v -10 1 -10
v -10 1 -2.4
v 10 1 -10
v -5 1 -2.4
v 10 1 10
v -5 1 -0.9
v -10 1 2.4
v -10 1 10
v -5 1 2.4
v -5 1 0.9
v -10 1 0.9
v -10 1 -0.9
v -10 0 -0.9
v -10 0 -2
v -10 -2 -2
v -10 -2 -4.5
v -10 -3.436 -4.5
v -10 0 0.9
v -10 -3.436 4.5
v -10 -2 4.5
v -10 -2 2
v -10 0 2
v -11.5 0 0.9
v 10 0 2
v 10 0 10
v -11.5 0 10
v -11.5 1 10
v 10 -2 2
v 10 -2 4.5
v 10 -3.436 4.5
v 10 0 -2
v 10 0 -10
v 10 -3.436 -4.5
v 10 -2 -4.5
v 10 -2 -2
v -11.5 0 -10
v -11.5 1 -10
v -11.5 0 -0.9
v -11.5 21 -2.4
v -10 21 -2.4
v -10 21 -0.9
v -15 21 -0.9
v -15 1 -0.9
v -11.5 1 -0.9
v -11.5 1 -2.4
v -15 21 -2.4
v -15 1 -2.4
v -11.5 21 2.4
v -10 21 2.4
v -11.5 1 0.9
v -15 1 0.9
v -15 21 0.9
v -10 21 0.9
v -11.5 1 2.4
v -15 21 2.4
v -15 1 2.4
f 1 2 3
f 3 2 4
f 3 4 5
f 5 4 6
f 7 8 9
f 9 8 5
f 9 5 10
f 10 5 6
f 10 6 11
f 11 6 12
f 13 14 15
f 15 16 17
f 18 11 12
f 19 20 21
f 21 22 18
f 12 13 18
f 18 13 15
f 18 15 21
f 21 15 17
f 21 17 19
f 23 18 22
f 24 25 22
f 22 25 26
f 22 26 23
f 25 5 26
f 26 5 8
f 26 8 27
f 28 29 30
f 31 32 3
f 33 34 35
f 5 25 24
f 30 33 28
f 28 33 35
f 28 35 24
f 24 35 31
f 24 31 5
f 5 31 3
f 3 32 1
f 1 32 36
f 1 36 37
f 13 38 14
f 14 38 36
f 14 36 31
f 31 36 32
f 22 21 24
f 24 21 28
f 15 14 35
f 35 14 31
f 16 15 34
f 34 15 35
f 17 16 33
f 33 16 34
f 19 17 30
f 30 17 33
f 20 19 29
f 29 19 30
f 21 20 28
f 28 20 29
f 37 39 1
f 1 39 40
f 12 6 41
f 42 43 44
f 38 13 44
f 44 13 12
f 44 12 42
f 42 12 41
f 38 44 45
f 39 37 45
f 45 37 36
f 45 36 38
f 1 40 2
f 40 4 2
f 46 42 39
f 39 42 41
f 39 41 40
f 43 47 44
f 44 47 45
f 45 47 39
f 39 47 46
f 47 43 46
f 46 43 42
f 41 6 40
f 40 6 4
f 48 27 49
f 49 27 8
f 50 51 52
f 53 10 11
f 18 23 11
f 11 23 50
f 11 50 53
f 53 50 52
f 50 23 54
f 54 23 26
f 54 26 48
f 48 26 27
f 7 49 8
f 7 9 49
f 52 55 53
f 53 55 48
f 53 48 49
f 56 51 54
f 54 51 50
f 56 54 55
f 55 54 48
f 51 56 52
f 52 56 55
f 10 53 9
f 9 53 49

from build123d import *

# Parameters (mm, degrees)
SKETCH1_W                = 20
SKETCH1_H                = 20
BOSS_EXTRUDE1_DEPTH      = 1
BOSS_EXTRUDE5_DEPTH      = 20
BOSS_EXTRUDE6_DEPTH      = 5
BOSS_EXTRUDE6_DEPTH_BACK = 5
SKETCH5_W                = 1.5
SKETCH5_H                = 20
CUT_EXTRUDE1_DEPTH       = 5
BOSS_EXTRUDE7_DEPTH      = 1.5


with BuildPart() as part:
    # Sketch1 → Boss-Extrude1 (new body)
    with BuildSketch(Plane(origin=(0, 0, 0), x_dir=(1, 0, 0), z_dir=(0, 1, 0))):
        Rectangle(SKETCH1_W, SKETCH1_H)
    extrude(amount=BOSS_EXTRUDE1_DEPTH)

    # Sketch4 → Boss-Extrude5 (add)
    with BuildSketch(Plane(origin=(10, 0, 0), x_dir=(0, 0, -1), z_dir=(1, 0, 0))):
        Polygon((-2, 0), (-2, -2), (-4.5, -2), (-4.5, -3.436102186), (4.5, -3.436102186), (4.5, -2), (2, -2), (2, 0), align=None)
    extrude(amount=-BOSS_EXTRUDE5_DEPTH)



with BuildPart() as body_2:
    # Sketch5 → Boss-Extrude6 (new, two sides: drawn at the far end of the back side and taken through both)
    with BuildSketch(Plane.ZY.offset(10).offset(-BOSS_EXTRUDE6_DEPTH_BACK)):
        with Locations((-1.65, 11)):
            Rectangle(SKETCH5_W, SKETCH5_H)
    extrude(amount=BOSS_EXTRUDE6_DEPTH + BOSS_EXTRUDE6_DEPTH_BACK)

    # Sketch6 → Cut-Extrude1 (cut)
    with BuildSketch(Plane.XY.offset(-0.9)):
        Polygon((-5, 1), (-10, 21), (-5, 21), align=None)
    extrude(amount=-CUT_EXTRUDE1_DEPTH, mode=Mode.SUBTRACT)


with BuildPart() as part_1:
    add(part.part)

    add(body_2.part)  # Boss-Extrude7 merges body 2
    # Sketch5<3> → Boss-Extrude7 (add)
    with BuildSketch(Plane.ZY.offset(10)):
        Polygon((-0.9, 0), (-0.9, 1), (-2.4, 1), (-2.4, 21), (-10, 1), (-10, 0), align=None)
    extrude(amount=BOSS_EXTRUDE7_DEPTH)

    # Mirror5: part across plane


with BuildPart() as part_2:
    add(part_1.part)
    add(part_1.part.mirror(Plane.XY))


solid = part_2.part
